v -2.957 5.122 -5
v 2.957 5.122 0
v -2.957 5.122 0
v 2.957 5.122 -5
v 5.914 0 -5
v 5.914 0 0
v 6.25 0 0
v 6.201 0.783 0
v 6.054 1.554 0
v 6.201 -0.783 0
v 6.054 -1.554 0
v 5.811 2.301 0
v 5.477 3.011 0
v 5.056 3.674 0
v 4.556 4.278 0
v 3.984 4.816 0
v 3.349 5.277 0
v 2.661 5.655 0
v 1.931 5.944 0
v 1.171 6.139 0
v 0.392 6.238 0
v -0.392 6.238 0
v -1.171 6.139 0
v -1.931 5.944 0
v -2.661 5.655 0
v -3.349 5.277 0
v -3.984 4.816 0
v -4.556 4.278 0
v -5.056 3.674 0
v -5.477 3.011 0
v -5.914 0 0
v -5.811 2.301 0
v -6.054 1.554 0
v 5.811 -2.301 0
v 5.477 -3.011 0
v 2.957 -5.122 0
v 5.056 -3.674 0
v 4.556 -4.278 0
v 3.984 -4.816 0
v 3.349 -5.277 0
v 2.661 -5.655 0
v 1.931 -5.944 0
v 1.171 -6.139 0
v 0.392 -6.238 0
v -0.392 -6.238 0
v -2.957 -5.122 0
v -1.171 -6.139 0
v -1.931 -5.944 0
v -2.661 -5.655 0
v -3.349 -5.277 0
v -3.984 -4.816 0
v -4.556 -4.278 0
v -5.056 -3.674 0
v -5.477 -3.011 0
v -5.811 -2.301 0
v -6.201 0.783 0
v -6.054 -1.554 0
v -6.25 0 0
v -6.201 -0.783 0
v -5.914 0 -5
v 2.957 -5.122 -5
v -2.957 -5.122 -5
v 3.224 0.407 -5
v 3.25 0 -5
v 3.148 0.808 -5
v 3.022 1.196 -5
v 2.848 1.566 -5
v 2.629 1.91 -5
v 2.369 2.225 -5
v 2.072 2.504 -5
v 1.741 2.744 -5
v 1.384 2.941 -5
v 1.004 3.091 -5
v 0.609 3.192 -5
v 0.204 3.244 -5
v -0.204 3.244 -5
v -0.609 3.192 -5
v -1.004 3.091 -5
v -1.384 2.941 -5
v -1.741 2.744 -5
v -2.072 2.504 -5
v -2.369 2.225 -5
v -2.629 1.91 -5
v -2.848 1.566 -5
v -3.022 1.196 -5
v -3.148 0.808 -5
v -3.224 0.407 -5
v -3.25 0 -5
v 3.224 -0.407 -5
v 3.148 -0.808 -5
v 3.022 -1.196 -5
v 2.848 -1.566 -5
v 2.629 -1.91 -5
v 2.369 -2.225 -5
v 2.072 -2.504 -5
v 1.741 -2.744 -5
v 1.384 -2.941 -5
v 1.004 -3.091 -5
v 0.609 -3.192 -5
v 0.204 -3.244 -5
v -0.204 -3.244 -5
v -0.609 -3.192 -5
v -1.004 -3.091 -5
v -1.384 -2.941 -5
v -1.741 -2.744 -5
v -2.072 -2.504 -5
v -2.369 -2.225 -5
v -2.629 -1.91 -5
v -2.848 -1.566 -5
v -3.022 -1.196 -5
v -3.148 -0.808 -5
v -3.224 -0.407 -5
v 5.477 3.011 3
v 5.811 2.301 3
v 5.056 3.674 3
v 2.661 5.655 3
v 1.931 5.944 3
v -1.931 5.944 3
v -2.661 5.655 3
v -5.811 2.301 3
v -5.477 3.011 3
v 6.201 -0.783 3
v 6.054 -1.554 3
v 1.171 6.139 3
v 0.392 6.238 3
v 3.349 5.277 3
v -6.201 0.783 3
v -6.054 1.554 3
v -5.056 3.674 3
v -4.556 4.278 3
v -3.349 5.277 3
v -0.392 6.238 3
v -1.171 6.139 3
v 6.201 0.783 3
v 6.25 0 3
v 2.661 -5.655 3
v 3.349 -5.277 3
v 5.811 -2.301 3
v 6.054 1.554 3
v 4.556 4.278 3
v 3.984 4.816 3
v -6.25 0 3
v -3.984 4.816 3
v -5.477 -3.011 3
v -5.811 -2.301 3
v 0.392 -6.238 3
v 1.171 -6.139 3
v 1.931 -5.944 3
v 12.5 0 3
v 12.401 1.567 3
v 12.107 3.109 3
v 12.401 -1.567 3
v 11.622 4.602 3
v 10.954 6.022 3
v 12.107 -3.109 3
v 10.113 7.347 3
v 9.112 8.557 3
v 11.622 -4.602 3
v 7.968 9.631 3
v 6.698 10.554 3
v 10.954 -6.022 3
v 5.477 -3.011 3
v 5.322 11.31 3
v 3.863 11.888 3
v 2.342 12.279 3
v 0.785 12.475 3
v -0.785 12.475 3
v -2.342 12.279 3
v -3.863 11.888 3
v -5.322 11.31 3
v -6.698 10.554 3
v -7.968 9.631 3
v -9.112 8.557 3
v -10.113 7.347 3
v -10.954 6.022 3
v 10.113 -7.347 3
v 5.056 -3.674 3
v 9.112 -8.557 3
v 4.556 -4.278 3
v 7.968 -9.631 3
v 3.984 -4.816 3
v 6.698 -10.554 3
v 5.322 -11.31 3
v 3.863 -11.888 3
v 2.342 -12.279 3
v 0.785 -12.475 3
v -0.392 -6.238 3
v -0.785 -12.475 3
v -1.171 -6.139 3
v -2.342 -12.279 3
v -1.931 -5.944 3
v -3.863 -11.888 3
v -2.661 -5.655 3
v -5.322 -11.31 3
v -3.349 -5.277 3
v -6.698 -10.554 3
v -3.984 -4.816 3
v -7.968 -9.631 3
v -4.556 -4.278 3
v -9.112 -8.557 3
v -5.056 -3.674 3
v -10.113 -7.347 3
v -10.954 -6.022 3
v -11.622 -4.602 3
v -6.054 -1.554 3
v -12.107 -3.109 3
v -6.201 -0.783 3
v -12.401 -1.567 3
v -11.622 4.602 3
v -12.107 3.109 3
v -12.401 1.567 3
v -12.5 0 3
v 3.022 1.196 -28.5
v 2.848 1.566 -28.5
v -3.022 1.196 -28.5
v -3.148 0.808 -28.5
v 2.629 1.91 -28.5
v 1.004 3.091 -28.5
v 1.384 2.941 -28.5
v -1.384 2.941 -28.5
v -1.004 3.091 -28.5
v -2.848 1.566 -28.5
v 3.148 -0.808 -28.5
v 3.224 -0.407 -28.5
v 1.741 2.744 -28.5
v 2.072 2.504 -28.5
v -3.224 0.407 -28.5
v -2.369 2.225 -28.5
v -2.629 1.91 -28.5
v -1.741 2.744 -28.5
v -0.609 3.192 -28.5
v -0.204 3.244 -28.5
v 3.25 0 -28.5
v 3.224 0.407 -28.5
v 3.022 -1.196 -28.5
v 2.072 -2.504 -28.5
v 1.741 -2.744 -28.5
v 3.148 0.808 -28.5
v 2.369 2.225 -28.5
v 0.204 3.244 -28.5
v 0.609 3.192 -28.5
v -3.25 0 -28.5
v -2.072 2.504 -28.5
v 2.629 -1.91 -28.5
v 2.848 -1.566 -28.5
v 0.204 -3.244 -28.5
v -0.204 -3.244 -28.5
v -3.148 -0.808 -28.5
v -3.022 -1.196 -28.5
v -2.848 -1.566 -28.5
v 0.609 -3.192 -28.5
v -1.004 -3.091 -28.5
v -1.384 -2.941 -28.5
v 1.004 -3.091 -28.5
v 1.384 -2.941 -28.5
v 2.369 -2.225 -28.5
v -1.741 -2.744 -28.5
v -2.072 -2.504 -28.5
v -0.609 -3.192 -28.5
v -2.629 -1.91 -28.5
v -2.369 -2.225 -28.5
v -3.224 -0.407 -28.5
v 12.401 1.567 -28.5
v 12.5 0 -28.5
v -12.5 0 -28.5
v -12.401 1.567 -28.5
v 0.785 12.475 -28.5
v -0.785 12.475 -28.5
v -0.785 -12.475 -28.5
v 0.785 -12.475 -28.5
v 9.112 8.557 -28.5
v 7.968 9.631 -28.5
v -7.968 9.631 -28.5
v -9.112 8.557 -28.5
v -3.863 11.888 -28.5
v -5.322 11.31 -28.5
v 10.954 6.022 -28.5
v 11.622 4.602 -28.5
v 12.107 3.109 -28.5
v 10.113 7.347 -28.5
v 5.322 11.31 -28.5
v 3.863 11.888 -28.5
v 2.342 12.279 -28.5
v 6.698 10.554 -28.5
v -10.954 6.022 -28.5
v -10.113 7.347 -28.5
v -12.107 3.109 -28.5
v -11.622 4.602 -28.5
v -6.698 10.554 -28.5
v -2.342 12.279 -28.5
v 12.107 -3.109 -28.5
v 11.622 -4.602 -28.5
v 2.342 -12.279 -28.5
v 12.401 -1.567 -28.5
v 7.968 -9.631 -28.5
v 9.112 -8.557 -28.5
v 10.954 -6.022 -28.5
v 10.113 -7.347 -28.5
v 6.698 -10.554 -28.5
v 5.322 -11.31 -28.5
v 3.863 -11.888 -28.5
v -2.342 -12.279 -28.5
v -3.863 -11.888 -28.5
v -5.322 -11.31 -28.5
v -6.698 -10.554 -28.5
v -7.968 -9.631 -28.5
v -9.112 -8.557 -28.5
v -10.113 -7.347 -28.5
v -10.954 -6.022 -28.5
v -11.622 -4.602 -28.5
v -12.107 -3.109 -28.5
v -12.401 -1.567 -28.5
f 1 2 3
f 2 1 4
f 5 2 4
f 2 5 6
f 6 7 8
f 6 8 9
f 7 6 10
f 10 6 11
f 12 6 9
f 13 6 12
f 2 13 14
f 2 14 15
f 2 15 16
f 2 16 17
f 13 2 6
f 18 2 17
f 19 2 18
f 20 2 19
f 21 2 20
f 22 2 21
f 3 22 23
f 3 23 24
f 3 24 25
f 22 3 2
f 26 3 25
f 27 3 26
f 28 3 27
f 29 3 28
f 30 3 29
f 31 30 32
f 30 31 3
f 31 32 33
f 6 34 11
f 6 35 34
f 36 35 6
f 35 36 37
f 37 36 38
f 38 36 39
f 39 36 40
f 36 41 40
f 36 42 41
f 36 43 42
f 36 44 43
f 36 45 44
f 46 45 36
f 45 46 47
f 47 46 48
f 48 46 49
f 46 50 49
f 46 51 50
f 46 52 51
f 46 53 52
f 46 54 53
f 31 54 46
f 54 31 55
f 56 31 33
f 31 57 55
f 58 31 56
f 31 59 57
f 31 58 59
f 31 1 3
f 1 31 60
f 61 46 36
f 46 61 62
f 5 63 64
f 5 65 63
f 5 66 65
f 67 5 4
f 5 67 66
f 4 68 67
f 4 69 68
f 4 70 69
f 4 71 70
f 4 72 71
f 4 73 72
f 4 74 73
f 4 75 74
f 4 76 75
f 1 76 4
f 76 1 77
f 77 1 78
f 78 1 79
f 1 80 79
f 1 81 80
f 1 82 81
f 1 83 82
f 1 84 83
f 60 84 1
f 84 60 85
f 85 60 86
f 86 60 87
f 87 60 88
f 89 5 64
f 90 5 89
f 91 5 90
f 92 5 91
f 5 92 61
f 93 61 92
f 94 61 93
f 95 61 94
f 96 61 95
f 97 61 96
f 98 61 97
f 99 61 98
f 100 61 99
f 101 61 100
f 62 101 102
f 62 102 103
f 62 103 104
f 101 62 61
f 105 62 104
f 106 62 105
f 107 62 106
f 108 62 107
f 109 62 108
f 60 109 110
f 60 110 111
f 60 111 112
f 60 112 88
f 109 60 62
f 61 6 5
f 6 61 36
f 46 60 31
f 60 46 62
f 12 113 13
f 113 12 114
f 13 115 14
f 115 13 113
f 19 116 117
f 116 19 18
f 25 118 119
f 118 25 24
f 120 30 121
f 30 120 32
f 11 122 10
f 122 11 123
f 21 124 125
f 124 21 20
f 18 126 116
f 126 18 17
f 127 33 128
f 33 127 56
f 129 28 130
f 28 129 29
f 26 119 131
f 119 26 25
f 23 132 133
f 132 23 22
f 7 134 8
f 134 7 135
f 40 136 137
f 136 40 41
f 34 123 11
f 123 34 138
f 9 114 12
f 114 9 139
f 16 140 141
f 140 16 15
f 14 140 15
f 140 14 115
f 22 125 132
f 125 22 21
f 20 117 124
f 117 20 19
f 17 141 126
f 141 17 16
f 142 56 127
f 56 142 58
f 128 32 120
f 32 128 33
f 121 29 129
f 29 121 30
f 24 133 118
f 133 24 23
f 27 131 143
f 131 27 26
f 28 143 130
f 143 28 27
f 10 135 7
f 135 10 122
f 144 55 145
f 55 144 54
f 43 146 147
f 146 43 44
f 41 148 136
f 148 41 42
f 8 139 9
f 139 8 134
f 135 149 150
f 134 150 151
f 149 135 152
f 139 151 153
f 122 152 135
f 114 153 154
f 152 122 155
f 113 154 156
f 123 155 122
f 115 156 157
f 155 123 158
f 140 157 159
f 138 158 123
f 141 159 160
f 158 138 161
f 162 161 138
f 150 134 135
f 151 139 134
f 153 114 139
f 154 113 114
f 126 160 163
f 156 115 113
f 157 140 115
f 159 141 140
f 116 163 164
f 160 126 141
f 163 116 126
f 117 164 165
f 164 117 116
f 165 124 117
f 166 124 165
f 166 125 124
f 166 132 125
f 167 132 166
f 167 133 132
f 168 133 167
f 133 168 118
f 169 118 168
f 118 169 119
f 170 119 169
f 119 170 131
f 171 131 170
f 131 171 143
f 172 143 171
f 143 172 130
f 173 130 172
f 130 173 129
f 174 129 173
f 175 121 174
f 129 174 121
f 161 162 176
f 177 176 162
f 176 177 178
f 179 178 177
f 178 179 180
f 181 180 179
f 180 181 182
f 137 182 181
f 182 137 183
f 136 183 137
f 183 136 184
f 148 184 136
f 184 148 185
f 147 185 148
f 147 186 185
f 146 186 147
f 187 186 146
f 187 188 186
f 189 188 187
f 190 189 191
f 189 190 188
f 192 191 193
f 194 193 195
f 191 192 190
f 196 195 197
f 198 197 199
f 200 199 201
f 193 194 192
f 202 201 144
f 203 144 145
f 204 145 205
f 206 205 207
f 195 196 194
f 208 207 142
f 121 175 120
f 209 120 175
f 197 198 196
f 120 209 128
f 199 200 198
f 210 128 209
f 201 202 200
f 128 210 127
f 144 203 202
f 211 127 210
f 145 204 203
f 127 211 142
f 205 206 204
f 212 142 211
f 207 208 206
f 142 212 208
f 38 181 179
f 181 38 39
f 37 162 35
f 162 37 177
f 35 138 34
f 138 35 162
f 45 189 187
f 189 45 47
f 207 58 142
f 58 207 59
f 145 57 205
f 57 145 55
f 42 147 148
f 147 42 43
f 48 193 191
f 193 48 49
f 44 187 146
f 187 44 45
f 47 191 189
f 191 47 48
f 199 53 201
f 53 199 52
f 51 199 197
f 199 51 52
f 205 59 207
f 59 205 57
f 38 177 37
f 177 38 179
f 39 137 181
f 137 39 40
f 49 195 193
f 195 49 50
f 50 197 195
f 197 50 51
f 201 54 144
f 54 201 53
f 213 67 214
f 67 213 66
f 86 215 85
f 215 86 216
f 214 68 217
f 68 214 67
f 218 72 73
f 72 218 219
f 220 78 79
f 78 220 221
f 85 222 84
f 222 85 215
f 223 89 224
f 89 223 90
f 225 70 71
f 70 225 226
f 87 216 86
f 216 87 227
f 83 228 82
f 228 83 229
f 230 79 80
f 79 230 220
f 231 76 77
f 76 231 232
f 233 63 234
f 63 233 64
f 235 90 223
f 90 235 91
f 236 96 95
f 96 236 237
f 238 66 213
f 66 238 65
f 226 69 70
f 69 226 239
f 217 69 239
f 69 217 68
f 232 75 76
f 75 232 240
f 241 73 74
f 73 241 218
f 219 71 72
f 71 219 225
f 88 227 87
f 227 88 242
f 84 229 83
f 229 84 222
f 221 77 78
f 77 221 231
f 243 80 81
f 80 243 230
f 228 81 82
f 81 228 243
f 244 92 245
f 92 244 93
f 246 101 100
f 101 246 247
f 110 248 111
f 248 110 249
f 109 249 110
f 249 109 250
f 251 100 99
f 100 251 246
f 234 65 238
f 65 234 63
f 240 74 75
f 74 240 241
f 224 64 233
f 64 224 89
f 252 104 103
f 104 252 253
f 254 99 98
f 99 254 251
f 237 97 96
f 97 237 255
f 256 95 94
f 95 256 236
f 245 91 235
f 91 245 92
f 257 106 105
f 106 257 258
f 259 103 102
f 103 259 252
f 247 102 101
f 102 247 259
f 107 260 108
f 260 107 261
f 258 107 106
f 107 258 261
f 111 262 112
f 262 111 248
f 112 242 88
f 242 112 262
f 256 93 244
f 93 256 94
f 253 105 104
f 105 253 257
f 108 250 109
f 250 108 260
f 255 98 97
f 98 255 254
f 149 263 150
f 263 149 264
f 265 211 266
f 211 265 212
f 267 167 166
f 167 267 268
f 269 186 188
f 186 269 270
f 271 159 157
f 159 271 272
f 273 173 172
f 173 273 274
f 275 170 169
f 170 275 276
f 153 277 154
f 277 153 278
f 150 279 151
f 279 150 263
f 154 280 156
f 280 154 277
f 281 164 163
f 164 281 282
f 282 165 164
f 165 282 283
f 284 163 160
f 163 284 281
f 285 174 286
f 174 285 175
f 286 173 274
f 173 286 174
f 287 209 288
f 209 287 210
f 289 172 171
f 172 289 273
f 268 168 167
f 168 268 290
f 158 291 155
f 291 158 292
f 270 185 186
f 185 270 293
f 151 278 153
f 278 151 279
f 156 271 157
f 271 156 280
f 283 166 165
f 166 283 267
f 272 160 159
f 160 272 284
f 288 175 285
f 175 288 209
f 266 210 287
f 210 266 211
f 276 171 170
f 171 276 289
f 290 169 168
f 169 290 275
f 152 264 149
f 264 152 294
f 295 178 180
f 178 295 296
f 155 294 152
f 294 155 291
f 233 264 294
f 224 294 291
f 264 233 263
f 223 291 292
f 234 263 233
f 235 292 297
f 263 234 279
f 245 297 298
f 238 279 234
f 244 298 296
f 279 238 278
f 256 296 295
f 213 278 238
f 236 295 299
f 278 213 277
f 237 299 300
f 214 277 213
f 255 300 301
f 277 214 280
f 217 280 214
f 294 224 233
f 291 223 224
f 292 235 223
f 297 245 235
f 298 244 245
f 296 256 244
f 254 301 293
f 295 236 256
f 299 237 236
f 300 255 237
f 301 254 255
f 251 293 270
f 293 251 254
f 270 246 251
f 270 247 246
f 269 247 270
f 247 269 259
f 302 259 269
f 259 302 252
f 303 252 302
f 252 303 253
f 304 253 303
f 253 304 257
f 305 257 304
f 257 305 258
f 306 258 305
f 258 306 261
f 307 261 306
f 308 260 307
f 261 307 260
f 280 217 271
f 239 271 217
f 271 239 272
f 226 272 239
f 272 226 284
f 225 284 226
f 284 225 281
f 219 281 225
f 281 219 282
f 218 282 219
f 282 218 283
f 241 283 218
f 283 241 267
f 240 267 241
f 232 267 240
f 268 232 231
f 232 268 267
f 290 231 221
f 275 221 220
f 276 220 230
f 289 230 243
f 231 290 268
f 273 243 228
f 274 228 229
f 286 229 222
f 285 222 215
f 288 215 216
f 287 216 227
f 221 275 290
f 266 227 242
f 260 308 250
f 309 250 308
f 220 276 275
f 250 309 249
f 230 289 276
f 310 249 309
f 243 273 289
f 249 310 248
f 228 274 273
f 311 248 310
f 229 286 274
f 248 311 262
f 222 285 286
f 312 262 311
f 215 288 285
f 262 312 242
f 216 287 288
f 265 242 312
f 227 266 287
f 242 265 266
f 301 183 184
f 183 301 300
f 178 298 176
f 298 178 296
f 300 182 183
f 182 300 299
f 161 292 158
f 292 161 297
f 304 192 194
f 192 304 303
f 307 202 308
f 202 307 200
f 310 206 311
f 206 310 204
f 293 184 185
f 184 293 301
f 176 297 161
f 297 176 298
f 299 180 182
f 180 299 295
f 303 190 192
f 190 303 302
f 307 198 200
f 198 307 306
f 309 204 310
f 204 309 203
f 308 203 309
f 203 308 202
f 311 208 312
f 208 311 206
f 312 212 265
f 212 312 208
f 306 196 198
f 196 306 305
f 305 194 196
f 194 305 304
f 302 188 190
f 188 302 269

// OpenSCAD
$fn = 50;


difference() {
	union() {
		translate(v = [0, 0, -28.5000000000]) {
			cylinder(h = 31.5000000000, r = 12.5000000000);
		}
	}
	union() {
		translate(v = [0, 0, 0]) {
			rotate(a = [0, 0, 0]) {
				difference() {
					union() {
						translate(v = [0, 0, -5]) {
							linear_extrude(height = 5) {
								polygon(points = [[5.9142500000, 0.0000000000], [2.9571250000, 5.1218907443], [-2.9571250000, 5.1218907443], [-5.9142500000, 0.0000000000], [-2.9571250000, -5.1218907443], [2.9571250000, -5.1218907443]]);
							}
						}
					}
					union();
				}
			}
		}
		#cylinder(h = 3, r = 6.2500000000);
		#translate(v = [0, 0, -100.0000000000]) {
			cylinder(h = 200, r = 3.2500000000);
		}
	}
}
